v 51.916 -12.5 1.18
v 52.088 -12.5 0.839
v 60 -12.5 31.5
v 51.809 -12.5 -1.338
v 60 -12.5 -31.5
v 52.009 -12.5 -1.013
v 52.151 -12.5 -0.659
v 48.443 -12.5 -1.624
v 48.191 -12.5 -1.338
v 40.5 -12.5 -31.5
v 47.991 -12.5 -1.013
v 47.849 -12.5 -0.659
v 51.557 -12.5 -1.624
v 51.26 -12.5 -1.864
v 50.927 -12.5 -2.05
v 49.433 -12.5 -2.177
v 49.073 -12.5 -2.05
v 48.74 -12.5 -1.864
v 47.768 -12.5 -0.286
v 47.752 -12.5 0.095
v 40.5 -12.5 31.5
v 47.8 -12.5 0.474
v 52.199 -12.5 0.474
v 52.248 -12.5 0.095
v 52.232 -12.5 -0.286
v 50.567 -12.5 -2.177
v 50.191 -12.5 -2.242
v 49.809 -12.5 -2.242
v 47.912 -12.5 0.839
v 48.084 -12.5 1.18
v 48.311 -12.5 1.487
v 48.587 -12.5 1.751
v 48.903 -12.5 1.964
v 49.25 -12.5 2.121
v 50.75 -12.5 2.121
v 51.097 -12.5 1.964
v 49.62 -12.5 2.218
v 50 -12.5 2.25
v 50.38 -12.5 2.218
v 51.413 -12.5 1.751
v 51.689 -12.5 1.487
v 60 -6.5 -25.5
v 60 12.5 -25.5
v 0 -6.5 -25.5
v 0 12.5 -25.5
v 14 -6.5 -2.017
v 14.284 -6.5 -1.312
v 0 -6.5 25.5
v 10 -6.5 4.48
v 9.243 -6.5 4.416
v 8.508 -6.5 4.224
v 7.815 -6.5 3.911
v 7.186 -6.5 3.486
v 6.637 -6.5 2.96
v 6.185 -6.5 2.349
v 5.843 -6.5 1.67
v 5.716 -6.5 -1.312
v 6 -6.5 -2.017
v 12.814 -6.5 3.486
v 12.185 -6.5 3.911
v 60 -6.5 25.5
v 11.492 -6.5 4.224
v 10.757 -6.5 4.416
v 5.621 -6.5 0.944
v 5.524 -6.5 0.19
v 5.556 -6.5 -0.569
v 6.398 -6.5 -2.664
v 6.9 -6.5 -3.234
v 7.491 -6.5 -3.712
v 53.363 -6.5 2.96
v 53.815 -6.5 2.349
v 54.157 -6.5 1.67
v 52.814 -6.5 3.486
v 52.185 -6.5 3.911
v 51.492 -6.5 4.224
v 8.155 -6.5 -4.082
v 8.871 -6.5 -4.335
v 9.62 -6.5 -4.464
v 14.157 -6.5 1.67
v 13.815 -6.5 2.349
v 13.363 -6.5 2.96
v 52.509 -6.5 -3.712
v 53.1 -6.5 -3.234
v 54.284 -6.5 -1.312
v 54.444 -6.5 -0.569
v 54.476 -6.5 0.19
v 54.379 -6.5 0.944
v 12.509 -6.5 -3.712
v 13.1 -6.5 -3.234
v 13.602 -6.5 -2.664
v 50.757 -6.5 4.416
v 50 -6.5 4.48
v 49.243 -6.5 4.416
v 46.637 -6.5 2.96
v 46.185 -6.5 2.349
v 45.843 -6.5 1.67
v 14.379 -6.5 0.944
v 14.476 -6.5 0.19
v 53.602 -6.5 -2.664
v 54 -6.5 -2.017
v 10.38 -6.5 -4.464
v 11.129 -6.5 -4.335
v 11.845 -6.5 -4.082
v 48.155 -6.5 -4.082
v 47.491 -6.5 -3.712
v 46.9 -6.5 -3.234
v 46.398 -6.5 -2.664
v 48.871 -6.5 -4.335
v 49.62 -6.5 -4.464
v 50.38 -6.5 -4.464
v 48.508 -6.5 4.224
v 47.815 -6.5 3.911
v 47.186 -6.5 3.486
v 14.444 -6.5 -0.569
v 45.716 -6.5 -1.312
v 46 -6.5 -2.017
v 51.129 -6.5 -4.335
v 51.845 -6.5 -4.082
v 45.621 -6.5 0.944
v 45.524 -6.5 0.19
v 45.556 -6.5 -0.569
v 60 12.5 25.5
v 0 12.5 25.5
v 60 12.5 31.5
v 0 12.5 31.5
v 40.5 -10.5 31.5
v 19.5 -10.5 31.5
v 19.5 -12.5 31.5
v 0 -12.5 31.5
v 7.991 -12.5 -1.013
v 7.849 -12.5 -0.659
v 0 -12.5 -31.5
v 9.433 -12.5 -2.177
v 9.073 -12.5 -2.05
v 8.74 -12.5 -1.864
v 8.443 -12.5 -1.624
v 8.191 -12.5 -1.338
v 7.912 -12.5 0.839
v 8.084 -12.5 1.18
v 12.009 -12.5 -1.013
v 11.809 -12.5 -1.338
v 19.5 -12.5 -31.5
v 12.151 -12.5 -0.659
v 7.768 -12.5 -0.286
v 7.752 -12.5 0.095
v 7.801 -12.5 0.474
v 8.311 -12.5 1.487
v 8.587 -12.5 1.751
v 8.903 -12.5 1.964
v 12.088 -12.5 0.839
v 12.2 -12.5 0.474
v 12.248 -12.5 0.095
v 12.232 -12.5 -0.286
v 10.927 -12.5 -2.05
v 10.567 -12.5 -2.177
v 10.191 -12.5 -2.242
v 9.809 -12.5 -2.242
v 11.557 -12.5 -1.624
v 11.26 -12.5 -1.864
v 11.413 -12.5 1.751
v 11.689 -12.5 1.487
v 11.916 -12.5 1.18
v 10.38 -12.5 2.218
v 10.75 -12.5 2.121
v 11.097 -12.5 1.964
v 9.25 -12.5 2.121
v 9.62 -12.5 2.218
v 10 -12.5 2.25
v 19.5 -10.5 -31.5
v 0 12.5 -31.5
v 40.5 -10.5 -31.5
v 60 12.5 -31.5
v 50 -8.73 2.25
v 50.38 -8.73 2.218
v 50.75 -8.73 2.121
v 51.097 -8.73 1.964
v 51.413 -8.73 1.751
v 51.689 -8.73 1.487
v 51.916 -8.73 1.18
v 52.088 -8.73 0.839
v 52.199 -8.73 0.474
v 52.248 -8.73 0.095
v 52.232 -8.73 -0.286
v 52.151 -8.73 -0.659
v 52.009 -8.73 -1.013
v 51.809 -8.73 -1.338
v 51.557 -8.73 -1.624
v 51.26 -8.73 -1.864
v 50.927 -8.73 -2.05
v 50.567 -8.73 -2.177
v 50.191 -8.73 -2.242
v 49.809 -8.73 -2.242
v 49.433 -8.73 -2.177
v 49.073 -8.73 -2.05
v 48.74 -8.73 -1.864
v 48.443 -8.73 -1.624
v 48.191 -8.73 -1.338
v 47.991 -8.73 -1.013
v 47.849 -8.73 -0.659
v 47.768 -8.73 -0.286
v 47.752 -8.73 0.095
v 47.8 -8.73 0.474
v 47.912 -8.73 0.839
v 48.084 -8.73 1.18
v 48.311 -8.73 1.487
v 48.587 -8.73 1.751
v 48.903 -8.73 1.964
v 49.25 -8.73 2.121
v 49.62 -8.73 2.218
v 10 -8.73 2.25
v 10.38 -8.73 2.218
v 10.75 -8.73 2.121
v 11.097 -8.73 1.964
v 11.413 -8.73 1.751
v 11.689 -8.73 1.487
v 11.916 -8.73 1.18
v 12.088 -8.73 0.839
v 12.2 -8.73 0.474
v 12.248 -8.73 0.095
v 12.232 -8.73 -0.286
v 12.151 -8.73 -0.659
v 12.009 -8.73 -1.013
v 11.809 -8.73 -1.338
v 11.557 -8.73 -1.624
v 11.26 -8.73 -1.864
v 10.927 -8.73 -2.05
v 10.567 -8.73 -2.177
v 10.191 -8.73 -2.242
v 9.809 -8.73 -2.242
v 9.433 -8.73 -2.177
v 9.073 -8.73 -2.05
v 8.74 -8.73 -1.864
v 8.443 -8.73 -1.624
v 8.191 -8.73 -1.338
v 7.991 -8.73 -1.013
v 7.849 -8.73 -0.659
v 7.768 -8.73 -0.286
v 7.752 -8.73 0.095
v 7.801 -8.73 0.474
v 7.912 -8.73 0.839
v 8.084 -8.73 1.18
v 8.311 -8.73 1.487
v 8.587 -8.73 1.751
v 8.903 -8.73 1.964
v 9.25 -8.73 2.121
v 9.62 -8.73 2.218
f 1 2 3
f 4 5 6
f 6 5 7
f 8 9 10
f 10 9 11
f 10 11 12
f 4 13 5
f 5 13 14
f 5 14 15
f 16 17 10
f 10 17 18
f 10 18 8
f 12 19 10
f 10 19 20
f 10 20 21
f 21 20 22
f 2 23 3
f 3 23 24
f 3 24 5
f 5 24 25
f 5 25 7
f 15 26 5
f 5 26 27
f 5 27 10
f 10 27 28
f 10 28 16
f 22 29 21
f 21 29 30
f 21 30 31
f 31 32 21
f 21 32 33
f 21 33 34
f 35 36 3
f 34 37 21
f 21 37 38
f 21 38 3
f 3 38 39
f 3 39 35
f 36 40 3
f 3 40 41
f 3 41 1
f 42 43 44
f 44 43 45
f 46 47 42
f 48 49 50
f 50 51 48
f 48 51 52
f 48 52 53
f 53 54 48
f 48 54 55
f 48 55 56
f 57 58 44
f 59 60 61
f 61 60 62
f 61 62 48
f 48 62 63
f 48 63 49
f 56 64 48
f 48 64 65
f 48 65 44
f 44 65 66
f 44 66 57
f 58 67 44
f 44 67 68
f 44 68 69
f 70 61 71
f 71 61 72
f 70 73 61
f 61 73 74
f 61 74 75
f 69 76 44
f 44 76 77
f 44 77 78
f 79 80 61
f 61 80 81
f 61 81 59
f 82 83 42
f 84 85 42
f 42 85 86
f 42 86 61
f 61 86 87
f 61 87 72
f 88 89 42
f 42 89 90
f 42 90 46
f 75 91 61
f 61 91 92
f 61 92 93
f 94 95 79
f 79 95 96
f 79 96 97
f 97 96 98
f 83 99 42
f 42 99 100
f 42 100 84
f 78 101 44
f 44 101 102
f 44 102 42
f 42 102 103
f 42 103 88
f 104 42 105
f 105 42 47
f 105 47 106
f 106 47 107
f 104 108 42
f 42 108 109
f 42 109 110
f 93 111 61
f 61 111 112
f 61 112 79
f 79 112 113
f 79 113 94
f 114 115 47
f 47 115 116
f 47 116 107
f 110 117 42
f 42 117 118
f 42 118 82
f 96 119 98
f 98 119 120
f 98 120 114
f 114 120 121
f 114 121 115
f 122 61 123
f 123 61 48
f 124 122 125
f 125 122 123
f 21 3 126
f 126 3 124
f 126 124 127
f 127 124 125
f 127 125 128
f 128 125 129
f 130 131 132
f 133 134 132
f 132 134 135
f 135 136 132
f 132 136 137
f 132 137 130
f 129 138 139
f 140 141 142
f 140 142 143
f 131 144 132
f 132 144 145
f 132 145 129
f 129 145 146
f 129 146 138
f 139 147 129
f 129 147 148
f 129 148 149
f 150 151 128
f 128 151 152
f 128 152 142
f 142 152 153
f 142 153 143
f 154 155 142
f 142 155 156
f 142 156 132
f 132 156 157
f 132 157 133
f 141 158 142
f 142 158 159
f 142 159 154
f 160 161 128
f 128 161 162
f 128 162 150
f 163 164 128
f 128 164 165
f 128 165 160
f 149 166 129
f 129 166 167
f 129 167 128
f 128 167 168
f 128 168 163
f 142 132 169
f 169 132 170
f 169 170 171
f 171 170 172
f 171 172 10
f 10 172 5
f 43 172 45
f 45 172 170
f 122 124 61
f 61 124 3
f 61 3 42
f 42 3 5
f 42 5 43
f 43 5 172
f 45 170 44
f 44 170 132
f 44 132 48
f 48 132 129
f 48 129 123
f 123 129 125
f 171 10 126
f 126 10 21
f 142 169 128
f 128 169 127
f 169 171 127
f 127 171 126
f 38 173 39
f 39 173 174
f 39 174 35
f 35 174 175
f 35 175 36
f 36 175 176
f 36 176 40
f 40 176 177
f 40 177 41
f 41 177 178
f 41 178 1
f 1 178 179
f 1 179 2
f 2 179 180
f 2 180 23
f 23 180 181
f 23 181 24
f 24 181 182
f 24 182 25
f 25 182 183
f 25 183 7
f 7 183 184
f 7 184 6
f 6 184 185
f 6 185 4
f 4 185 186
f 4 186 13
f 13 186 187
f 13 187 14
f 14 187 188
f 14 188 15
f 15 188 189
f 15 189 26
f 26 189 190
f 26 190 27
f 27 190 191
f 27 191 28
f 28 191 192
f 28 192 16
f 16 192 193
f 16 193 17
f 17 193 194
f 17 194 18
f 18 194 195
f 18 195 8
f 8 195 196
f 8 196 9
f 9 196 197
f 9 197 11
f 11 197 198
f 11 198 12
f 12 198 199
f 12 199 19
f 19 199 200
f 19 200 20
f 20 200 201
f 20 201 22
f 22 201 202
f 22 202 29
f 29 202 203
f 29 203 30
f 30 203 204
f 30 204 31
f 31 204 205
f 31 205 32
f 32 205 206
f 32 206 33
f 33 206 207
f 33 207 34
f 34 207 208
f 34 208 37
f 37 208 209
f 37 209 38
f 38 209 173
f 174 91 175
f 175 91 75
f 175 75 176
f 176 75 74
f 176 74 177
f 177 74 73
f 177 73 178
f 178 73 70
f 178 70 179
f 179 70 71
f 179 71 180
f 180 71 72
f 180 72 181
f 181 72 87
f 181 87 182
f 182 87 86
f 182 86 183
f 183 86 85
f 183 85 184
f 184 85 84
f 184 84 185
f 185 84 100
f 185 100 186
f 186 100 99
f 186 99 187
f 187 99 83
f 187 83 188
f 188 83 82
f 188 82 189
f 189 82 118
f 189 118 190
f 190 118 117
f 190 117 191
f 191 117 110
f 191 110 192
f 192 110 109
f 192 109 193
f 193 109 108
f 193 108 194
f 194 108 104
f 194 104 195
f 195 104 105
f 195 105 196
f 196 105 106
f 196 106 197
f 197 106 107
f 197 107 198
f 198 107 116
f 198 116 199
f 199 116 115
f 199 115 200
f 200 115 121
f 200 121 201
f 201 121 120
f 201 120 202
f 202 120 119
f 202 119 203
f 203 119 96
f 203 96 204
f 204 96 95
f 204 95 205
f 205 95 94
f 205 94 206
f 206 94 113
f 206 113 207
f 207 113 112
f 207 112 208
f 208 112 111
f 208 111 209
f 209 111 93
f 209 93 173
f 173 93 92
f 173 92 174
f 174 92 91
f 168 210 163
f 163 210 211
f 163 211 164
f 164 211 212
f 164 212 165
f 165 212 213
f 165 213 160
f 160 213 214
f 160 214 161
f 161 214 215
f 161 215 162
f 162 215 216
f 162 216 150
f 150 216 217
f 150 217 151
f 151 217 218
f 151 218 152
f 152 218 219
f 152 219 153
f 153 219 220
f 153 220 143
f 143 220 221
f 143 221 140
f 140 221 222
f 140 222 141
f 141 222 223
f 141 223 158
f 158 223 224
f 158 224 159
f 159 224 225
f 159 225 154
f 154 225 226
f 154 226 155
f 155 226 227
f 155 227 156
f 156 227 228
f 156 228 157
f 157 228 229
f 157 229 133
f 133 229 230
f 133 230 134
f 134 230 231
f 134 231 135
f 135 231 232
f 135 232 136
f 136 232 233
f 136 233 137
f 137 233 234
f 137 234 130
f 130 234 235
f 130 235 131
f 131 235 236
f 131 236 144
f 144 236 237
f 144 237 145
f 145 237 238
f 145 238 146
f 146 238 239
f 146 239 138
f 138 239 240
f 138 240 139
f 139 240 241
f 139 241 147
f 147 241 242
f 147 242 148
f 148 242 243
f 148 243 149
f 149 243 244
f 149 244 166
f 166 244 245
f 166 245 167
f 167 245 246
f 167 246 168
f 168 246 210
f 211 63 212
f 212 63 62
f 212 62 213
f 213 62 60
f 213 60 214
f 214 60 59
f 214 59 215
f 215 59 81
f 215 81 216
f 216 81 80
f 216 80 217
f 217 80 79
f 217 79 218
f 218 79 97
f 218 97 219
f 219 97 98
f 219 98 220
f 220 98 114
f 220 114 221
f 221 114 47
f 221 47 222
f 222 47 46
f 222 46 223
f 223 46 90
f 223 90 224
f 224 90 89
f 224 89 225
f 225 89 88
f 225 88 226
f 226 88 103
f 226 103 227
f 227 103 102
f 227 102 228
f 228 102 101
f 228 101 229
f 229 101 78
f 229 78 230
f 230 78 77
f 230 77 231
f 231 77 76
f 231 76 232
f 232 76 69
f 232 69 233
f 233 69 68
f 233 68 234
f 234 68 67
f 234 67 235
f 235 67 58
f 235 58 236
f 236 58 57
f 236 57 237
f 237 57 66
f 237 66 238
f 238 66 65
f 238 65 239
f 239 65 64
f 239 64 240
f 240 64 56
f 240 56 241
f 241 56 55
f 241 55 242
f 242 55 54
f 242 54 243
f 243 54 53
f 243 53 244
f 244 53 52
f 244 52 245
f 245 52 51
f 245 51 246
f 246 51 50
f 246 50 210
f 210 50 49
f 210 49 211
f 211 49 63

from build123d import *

# Parameters (mm, degrees)
BOSS_EXTRUDE1_DEPTH           = 60
SKETCH2_W                     = 21
SKETCH2_H                     = 2
CUT_EXTRUDE1_DEPTH            = 88.893401345
CSK_FOR_M4_SFHCS1_D           = 4.5
CSK_FOR_M4_SFHCS1_CSINK_D     = 8.96
CSK_FOR_M4_SFHCS1_CSINK_ANGLE = 90


with BuildPart() as part:
    # Sketch1 → Boss-Extrude1 (new body)
    with BuildSketch(Plane(origin=(0, 0, 0), x_dir=(0, 0, -1), z_dir=(1, 0, 0))):
        Polygon((-31.5, 12.5), (-31.5, -12.5), (31.5, -12.5), (31.5, 12.5), (25.5, 12.5), (25.5, -6.5), (-25.5, -6.5), (-25.5, 12.5), align=None)
    extrude(amount=BOSS_EXTRUDE1_DEPTH)

    # Sketch2 → Cut-Extrude1 (cut, through all)
    with BuildSketch(Plane.XY.offset(31.5)):
        with Locations((30, -11.5)):
            Rectangle(SKETCH2_W, SKETCH2_H)
    extrude(amount=-CUT_EXTRUDE1_DEPTH, mode=Mode.SUBTRACT)

    # CSK for M4 SFHCS1 (through all)
    with Locations(Plane(origin=(0, -6.5, 0), x_dir=(1, 0, 0), z_dir=(0, 1, 0))):
        with Locations((10, 0), (50, 0)):
            CounterSinkHole(CSK_FOR_M4_SFHCS1_D / 2, CSK_FOR_M4_SFHCS1_CSINK_D / 2, counter_sink_angle=CSK_FOR_M4_SFHCS1_CSINK_ANGLE)


solid = part.part
